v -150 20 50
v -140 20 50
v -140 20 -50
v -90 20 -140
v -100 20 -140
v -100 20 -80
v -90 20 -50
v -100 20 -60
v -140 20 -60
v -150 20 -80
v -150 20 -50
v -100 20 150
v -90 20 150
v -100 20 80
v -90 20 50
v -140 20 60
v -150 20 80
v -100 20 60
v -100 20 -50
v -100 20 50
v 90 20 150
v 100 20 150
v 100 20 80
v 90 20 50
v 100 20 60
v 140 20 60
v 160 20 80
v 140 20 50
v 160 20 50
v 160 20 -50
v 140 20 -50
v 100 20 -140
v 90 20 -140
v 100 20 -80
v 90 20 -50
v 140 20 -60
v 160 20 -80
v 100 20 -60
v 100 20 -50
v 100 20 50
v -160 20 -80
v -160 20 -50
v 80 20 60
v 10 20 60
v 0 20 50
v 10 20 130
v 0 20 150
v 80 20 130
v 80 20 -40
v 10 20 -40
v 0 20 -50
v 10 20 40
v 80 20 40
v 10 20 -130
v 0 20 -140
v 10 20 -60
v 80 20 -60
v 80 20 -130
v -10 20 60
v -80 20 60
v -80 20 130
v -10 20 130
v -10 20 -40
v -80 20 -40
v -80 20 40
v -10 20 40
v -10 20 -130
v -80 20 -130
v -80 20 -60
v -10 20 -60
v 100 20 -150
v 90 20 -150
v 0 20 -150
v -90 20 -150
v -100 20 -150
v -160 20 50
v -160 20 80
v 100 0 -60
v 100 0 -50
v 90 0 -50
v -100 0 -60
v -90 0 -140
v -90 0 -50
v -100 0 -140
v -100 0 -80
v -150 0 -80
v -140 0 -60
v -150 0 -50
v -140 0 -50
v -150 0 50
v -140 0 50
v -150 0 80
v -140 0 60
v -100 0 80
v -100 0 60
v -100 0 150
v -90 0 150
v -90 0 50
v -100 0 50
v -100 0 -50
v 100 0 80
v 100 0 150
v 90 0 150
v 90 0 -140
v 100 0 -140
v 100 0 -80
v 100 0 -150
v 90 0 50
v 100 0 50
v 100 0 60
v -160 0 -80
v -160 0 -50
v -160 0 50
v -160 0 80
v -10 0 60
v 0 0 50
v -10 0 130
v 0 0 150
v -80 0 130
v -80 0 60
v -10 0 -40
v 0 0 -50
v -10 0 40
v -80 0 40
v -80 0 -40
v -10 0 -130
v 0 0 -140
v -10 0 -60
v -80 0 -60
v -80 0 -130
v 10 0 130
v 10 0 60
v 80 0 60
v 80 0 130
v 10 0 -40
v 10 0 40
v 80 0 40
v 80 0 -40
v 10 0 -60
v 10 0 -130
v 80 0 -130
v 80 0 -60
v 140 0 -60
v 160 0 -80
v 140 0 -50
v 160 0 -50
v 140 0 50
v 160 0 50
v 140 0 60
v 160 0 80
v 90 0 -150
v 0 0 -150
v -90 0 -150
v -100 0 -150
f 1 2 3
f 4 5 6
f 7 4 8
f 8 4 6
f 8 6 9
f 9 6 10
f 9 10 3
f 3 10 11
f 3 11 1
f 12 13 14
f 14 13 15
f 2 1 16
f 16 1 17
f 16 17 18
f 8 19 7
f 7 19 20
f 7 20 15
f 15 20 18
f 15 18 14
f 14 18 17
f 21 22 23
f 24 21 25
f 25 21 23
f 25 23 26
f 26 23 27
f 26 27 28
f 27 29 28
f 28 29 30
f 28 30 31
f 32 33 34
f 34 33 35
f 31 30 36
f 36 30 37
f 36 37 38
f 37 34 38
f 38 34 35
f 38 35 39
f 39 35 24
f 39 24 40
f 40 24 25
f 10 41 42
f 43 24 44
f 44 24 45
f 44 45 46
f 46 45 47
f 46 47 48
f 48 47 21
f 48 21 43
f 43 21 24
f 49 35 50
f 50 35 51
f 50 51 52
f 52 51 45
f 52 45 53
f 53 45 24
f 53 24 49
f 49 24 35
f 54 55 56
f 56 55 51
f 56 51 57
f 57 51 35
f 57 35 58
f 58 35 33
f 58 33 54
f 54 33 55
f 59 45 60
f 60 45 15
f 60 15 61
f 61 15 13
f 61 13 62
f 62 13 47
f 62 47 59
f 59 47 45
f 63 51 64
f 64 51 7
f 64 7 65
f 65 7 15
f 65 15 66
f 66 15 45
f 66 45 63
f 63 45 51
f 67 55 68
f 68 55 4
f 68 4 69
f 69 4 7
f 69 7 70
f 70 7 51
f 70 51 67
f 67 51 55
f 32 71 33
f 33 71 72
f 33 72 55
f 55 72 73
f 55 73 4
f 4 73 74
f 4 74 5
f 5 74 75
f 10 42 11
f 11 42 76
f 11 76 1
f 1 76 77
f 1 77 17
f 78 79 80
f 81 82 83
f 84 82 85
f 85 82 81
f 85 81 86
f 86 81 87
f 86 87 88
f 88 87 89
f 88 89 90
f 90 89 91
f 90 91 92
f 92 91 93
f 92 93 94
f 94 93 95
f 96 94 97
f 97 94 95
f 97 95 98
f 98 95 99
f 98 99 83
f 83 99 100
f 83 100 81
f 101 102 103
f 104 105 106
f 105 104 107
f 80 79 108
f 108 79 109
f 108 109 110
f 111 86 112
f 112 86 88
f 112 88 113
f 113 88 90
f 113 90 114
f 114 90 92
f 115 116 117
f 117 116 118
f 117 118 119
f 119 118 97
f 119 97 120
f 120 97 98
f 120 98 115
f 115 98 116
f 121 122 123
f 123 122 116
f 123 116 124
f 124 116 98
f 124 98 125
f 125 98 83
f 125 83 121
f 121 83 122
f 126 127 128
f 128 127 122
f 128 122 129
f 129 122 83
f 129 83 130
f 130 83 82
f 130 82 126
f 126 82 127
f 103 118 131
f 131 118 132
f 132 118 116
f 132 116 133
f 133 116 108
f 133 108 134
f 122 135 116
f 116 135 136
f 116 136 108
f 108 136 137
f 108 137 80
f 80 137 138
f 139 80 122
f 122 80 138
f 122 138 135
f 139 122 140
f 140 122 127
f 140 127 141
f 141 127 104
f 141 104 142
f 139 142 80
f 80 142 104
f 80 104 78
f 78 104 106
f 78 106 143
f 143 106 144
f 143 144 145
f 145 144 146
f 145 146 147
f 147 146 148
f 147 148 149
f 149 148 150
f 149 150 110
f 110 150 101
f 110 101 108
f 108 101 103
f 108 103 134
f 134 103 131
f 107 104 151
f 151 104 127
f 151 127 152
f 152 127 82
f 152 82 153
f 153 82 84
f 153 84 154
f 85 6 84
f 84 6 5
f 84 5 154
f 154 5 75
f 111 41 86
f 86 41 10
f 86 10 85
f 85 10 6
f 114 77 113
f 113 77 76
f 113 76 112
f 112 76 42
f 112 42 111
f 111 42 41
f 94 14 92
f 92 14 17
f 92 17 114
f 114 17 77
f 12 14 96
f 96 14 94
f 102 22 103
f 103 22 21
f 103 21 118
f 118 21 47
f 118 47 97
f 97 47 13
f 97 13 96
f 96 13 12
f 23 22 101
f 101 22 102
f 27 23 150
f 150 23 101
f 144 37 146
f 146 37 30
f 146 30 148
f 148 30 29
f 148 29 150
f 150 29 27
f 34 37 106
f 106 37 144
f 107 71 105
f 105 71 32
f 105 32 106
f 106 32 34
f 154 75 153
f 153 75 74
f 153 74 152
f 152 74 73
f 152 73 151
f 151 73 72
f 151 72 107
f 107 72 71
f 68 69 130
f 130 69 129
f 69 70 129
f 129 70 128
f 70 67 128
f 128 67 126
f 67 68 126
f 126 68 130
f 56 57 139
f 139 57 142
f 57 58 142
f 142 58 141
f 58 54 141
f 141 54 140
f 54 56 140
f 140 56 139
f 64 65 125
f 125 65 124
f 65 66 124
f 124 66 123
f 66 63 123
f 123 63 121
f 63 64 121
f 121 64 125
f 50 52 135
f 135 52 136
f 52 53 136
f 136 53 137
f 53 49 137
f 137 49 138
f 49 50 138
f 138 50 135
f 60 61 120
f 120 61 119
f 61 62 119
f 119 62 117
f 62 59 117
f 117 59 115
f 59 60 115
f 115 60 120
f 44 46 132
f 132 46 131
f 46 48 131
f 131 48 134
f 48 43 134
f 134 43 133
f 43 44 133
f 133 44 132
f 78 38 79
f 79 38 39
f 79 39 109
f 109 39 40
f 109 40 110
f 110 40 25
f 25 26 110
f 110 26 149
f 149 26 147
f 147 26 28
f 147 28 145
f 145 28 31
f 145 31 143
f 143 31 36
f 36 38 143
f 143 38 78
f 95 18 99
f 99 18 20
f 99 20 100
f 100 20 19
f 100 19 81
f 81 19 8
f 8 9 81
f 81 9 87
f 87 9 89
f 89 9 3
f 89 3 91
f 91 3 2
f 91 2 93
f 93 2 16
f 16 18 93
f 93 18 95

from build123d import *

# Parameters (mm, degrees)
SKETCH4_W           = 70
SKETCH4_H           = 70
SKETCH4_H_2         = 80
SKETCH4_W_2         = 40
SKETCH4_H_3         = 120
BOSS_EXTRUDE2_DEPTH = 20


with BuildPart() as part:
    # Sketch4 → Boss-Extrude2 (new body)
    with BuildSketch(Plane(origin=(0, 0, 0), x_dir=(1, 0, 0), z_dir=(0, 1, 0))):
        Polygon((-100, 150), (100, 150), (100, 80), (160, 80), (160, -80), (100, -80), (100, -150), (-100, -150), (-100, -80), (-160, -80), (-160, 80), (-100, 80), align=None)
        with Locations((-45, 95)):
            Rectangle(SKETCH4_W, SKETCH4_H, mode=Mode.SUBTRACT)
        with Locations((45, 95)):
            Rectangle(SKETCH4_W, SKETCH4_H, mode=Mode.SUBTRACT)
        with Locations((-45, 0)):
            Rectangle(SKETCH4_W, SKETCH4_H_2, mode=Mode.SUBTRACT)
        with Locations((45, 0)):
            Rectangle(SKETCH4_W, SKETCH4_H_2, mode=Mode.SUBTRACT)
        with Locations((-45, -95)):
            Rectangle(SKETCH4_W, SKETCH4_H, mode=Mode.SUBTRACT)
        with Locations((45, -95)):
            Rectangle(SKETCH4_W, SKETCH4_H, mode=Mode.SUBTRACT)
        with Locations((120, 0)):
            Rectangle(SKETCH4_W_2, SKETCH4_H_3, mode=Mode.SUBTRACT)
        with Locations((-120, 0)):
            Rectangle(SKETCH4_W_2, SKETCH4_H_3, mode=Mode.SUBTRACT)
    extrude(amount=BOSS_EXTRUDE2_DEPTH)


solid = part.part
